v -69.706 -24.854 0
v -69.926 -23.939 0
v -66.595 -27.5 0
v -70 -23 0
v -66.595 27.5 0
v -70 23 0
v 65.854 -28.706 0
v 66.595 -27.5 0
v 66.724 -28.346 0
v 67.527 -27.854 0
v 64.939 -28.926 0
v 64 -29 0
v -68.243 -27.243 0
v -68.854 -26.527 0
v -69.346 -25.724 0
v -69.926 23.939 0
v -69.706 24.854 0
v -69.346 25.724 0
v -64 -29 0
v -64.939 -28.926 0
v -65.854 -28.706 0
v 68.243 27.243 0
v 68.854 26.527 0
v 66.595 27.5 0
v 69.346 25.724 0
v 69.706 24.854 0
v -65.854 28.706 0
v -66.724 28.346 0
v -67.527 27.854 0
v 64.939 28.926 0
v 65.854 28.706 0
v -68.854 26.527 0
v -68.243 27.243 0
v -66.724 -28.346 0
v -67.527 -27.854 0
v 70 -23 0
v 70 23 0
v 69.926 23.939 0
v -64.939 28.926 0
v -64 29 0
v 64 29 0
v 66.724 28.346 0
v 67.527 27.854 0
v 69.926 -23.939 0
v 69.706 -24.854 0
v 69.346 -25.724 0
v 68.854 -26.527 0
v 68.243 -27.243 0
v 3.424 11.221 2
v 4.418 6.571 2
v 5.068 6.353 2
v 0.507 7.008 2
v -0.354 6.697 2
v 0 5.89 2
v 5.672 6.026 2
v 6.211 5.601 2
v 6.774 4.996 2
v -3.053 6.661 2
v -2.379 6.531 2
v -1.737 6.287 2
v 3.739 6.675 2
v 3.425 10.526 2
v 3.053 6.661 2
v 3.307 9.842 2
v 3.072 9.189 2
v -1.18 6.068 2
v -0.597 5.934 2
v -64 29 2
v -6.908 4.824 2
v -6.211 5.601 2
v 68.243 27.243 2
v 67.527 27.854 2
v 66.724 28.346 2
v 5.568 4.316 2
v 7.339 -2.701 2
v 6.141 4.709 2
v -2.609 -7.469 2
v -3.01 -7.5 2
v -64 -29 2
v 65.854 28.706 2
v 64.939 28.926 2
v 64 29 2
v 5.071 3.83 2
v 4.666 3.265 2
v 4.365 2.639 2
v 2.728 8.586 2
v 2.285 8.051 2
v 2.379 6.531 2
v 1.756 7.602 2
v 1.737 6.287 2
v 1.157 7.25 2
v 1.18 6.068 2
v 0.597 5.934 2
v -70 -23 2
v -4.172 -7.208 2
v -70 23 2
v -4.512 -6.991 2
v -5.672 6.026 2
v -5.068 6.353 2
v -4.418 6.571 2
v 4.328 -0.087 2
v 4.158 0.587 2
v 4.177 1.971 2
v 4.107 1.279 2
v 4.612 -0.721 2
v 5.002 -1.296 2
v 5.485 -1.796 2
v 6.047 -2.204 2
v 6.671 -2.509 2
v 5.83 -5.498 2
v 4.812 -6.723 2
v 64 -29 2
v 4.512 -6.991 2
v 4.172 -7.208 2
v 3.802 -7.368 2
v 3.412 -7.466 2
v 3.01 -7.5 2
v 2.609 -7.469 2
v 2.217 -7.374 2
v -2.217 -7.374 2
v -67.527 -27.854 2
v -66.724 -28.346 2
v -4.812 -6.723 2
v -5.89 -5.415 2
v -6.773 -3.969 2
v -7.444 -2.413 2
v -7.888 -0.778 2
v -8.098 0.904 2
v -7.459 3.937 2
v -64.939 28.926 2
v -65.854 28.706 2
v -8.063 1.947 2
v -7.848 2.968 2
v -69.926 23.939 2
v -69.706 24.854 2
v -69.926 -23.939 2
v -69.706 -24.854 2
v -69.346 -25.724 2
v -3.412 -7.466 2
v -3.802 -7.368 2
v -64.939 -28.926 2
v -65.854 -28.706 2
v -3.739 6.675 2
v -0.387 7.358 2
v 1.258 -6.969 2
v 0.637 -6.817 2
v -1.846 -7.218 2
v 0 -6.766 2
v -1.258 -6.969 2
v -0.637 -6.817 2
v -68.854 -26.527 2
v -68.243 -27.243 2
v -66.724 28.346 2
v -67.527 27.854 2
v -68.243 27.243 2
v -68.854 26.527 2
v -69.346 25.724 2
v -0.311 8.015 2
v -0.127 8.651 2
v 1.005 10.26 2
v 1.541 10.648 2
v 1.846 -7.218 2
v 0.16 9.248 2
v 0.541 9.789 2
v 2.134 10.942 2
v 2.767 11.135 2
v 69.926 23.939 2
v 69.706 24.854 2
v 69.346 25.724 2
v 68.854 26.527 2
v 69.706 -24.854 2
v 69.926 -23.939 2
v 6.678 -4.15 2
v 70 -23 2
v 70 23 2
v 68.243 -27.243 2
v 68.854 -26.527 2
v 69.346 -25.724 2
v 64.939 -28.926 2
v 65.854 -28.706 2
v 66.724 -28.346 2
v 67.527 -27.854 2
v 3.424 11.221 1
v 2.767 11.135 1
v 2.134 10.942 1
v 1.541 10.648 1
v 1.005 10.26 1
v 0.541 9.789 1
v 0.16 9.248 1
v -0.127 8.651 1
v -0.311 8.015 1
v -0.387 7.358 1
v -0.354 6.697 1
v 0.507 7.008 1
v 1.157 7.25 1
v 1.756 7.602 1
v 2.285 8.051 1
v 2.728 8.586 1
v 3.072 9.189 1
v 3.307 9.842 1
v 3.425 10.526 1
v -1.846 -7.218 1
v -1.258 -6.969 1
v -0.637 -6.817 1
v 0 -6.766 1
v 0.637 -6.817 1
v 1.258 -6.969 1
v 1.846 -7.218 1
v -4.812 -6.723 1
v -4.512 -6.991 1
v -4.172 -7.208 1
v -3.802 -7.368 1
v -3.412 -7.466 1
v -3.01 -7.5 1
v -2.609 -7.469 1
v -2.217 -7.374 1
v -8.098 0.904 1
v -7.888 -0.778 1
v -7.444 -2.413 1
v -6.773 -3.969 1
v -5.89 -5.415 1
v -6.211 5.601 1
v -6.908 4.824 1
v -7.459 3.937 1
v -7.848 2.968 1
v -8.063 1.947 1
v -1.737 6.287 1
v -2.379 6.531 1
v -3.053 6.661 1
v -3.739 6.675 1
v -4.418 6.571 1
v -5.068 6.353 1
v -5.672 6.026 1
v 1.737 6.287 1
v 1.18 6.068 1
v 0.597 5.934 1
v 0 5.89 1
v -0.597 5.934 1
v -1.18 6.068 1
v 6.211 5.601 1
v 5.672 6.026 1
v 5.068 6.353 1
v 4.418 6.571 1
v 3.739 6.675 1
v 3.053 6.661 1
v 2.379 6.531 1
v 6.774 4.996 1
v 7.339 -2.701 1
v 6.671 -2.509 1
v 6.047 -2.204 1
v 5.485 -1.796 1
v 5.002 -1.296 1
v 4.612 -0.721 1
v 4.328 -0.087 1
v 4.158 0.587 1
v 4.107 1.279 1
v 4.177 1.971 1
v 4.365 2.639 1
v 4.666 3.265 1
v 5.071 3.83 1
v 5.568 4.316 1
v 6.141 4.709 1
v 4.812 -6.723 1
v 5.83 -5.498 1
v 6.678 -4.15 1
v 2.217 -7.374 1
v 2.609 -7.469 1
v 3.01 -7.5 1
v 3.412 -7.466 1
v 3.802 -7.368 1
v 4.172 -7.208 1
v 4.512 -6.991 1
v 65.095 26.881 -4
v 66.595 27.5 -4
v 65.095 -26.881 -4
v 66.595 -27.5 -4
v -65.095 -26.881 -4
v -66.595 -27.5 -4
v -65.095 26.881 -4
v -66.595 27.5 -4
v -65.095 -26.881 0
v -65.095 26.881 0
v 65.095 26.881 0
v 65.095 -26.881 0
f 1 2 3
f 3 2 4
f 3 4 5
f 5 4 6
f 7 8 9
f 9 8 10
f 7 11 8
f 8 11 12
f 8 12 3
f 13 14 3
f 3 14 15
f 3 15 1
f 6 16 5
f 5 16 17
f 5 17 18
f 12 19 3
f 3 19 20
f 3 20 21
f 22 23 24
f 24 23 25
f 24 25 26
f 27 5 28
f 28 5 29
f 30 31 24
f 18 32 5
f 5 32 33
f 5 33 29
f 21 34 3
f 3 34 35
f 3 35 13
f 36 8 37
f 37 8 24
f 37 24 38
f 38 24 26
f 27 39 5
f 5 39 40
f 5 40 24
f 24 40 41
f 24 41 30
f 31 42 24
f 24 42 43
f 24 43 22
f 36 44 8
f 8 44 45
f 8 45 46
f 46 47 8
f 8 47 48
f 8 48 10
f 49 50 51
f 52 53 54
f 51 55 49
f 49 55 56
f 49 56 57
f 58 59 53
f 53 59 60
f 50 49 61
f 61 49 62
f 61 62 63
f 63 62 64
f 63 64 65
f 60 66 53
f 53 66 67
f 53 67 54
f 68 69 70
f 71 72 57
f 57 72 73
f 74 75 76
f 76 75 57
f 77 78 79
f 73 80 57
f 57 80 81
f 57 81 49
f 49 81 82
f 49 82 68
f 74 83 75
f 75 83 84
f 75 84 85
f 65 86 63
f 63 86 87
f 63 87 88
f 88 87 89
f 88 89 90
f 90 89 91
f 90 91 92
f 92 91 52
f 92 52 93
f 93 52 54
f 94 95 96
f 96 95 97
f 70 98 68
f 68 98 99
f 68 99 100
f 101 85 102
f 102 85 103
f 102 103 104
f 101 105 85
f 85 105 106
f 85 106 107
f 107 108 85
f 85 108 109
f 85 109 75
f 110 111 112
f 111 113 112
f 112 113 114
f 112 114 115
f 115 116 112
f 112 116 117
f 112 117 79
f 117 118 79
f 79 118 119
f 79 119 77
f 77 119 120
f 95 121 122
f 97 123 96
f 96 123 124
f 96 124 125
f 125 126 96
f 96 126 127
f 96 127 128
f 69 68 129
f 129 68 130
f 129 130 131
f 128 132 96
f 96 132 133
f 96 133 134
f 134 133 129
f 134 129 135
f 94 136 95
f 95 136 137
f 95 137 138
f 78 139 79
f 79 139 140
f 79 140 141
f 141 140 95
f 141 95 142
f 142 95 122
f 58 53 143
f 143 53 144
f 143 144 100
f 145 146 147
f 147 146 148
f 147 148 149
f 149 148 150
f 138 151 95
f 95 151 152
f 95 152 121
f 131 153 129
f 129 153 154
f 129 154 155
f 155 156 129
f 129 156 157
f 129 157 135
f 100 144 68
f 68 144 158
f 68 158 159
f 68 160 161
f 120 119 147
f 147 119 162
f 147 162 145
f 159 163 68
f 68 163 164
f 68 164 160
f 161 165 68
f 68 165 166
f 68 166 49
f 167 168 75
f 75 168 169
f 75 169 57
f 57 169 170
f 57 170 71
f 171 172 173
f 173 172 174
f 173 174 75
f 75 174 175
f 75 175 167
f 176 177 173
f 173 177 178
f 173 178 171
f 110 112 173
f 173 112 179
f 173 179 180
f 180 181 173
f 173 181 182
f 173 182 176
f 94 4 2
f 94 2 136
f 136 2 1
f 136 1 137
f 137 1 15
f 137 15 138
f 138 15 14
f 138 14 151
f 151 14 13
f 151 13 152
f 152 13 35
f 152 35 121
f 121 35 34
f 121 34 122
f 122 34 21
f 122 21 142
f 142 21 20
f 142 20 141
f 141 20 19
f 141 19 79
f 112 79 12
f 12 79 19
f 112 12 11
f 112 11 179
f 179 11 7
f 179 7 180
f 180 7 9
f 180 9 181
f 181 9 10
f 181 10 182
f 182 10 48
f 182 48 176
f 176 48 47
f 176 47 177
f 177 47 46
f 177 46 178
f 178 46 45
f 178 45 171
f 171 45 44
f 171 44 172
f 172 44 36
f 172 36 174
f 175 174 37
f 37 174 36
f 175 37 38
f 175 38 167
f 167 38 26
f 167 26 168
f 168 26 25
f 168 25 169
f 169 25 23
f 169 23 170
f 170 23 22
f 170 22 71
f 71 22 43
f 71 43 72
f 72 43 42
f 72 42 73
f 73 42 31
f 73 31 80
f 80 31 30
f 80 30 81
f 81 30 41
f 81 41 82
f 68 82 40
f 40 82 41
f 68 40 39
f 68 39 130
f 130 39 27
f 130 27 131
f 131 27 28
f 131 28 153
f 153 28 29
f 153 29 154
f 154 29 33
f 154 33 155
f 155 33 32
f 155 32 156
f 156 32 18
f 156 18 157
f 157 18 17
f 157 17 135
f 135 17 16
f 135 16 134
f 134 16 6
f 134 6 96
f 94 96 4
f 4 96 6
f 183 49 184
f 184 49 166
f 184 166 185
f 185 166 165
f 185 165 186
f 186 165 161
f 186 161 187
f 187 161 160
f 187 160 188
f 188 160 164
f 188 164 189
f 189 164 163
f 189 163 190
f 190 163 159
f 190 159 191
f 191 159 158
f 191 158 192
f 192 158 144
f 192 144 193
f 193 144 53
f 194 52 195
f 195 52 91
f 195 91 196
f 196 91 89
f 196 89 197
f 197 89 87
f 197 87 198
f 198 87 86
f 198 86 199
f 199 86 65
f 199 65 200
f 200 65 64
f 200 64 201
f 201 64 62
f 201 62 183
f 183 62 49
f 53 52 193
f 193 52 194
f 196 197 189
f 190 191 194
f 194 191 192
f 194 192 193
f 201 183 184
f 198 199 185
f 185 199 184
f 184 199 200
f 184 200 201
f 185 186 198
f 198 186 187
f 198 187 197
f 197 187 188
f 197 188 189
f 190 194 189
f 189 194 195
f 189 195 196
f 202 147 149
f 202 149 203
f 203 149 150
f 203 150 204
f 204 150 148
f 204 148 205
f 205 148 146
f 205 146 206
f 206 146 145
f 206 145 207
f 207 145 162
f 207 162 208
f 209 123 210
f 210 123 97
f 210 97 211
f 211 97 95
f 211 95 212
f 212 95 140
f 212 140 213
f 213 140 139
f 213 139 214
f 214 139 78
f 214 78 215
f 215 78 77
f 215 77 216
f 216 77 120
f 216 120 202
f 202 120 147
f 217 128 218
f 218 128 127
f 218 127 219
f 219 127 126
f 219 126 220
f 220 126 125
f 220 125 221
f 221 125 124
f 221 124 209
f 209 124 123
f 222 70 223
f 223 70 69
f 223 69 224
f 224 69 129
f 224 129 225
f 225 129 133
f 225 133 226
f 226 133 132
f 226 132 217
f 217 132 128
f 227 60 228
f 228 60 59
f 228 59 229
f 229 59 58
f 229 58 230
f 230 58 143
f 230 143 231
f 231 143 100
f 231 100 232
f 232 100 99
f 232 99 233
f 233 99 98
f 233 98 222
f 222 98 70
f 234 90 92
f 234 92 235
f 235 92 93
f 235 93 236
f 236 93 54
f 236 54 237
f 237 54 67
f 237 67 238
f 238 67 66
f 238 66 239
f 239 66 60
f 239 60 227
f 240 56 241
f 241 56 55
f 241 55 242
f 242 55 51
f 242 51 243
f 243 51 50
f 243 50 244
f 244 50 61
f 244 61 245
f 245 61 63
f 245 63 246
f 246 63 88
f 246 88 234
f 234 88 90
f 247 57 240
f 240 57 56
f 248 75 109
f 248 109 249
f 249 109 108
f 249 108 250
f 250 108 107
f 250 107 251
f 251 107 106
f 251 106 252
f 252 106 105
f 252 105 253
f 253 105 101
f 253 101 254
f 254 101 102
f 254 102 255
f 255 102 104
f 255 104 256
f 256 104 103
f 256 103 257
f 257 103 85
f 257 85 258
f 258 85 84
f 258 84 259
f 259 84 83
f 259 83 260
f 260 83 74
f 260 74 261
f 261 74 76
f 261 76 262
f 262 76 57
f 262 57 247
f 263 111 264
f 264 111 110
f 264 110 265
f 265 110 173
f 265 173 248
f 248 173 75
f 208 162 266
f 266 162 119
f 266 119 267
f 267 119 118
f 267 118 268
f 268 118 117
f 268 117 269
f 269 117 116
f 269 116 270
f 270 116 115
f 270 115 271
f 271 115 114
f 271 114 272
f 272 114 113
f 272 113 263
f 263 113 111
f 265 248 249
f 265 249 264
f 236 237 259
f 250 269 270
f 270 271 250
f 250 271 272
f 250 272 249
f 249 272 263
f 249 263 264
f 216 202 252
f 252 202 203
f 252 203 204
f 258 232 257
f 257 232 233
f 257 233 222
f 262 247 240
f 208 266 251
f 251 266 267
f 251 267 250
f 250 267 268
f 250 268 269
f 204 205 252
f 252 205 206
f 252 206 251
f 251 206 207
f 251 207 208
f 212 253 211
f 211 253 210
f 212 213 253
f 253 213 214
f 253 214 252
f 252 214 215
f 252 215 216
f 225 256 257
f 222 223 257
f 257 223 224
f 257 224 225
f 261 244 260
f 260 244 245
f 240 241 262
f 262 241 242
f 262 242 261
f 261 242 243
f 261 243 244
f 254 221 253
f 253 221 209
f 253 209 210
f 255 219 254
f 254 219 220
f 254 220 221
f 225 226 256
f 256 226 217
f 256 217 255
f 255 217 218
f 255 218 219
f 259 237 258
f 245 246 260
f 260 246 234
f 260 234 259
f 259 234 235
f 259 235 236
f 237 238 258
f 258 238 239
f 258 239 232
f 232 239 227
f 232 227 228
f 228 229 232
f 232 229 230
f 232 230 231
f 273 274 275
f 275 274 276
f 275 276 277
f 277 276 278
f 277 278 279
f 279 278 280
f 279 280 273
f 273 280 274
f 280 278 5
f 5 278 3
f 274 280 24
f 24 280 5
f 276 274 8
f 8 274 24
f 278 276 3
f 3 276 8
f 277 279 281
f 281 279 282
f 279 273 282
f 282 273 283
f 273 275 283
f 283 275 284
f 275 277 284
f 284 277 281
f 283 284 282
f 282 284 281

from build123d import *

# Parameters (mm, degrees)
EXTRUDE_1_DEPTH     = 2
CUT_EXTRUDE_2_DEPTH = 1
SKETCH_4_W          = 133.19
SKETCH_4_H          = 55
SKETCH_4_W_2        = 130.19
SKETCH_4_H_2        = 53.761168256
EXTRUDE_2_DEPTH     = 4


with BuildPart() as part:
    # 草图1 → 凸台-拉伸1 (new body)
    with BuildSketch(Plane.XY):
        with BuildLine():
            Line((-64, 29), (64, 29))
            ThreePointArc((64, 29), (68.242640687, 27.242640687), (70, 23))
            Line((70, 23), (70, -23))
            ThreePointArc((70, -23), (68.242640687, -27.242640687), (64, -29))
            Line((64, -29), (-64, -29))
            ThreePointArc((-64, -29), (-68.242640687, -27.242640687), (-70, -23))
            Line((-70, -23), (-70, 23))
            ThreePointArc((-70, 23), (-68.242640687, 27.242640687), (-64, 29))
        make_face()
    extrude(amount=EXTRUDE_1_DEPTH)

    # 草图3 → 切除-拉伸2 (cut)
    with BuildSketch(Plane.XY.offset(2)):
        with BuildLine():
            ThreePointArc((1.846153846, -7.217800499), (3.411683714, -7.465870337), (4.81172184, -6.722690911))
            ThreePointArc((4.81172184, -6.722690911), (6.276265295, -4.837971823), (7.338817992, -2.700675555))
            ThreePointArc((7.338817992, -2.700675555), (4.117591942, 0.931901262), (6.77351325, 4.99613472))
            ThreePointArc((6.77351325, 4.99613472), (6.502838049, 5.308433669), (6.211306836, 5.601359))
            ThreePointArc((6.211306836, 5.601359), (4.080647383, 6.637601762), (1.7375, 6.286647199))
            ThreePointArc((1.7375, 6.286647199), (0, 5.889575695), (-1.7375, 6.286647199))
            ThreePointArc((-1.7375, 6.286647199), (-4.080647383, 6.637601762), (-6.211306835, 5.601359))
            ThreePointArc((-6.211306835, 5.601359), (-7.674507441, 3.461224238), (-8.098236156, 0.903571645))
            ThreePointArc((-8.098236156, 0.903571645), (-7.135696802, -3.20291287), (-4.81172184, -6.722690911))
            ThreePointArc((-4.81172184, -6.722690911), (-3.411683714, -7.465870337), (-1.846153846, -7.217800499))
            ThreePointArc((-1.846153846, -7.217800499), (0, -6.766281297), (1.846153846, -7.217800499))
        make_face()
        with BuildLine():
            ThreePointArc((0.506524653, 7.007542389), (2.728267025, 8.585588777), (3.423600981, 11.22052336))
            ThreePointArc((3.423600981, 11.22052336), (0.540506505, 9.788938293), (-0.354358224, 6.696869944))
            ThreePointArc((-0.354358224, 6.696869944), (0.070150926, 6.868644721), (0.506524653, 7.007542389))
        make_face()
    extrude(amount=-CUT_EXTRUDE_2_DEPTH, mode=Mode.SUBTRACT)

    # 草图4 → 凸台-拉伸2 (add)
    with BuildSketch(Plane(origin=(0, 0, 0), x_dir=(-1, 0, 0), z_dir=(0, 0, -1))):
        Rectangle(SKETCH_4_W, SKETCH_4_H)
        Rectangle(SKETCH_4_W_2, SKETCH_4_H_2, mode=Mode.SUBTRACT)
    extrude(amount=EXTRUDE_2_DEPTH)


solid = part.part
